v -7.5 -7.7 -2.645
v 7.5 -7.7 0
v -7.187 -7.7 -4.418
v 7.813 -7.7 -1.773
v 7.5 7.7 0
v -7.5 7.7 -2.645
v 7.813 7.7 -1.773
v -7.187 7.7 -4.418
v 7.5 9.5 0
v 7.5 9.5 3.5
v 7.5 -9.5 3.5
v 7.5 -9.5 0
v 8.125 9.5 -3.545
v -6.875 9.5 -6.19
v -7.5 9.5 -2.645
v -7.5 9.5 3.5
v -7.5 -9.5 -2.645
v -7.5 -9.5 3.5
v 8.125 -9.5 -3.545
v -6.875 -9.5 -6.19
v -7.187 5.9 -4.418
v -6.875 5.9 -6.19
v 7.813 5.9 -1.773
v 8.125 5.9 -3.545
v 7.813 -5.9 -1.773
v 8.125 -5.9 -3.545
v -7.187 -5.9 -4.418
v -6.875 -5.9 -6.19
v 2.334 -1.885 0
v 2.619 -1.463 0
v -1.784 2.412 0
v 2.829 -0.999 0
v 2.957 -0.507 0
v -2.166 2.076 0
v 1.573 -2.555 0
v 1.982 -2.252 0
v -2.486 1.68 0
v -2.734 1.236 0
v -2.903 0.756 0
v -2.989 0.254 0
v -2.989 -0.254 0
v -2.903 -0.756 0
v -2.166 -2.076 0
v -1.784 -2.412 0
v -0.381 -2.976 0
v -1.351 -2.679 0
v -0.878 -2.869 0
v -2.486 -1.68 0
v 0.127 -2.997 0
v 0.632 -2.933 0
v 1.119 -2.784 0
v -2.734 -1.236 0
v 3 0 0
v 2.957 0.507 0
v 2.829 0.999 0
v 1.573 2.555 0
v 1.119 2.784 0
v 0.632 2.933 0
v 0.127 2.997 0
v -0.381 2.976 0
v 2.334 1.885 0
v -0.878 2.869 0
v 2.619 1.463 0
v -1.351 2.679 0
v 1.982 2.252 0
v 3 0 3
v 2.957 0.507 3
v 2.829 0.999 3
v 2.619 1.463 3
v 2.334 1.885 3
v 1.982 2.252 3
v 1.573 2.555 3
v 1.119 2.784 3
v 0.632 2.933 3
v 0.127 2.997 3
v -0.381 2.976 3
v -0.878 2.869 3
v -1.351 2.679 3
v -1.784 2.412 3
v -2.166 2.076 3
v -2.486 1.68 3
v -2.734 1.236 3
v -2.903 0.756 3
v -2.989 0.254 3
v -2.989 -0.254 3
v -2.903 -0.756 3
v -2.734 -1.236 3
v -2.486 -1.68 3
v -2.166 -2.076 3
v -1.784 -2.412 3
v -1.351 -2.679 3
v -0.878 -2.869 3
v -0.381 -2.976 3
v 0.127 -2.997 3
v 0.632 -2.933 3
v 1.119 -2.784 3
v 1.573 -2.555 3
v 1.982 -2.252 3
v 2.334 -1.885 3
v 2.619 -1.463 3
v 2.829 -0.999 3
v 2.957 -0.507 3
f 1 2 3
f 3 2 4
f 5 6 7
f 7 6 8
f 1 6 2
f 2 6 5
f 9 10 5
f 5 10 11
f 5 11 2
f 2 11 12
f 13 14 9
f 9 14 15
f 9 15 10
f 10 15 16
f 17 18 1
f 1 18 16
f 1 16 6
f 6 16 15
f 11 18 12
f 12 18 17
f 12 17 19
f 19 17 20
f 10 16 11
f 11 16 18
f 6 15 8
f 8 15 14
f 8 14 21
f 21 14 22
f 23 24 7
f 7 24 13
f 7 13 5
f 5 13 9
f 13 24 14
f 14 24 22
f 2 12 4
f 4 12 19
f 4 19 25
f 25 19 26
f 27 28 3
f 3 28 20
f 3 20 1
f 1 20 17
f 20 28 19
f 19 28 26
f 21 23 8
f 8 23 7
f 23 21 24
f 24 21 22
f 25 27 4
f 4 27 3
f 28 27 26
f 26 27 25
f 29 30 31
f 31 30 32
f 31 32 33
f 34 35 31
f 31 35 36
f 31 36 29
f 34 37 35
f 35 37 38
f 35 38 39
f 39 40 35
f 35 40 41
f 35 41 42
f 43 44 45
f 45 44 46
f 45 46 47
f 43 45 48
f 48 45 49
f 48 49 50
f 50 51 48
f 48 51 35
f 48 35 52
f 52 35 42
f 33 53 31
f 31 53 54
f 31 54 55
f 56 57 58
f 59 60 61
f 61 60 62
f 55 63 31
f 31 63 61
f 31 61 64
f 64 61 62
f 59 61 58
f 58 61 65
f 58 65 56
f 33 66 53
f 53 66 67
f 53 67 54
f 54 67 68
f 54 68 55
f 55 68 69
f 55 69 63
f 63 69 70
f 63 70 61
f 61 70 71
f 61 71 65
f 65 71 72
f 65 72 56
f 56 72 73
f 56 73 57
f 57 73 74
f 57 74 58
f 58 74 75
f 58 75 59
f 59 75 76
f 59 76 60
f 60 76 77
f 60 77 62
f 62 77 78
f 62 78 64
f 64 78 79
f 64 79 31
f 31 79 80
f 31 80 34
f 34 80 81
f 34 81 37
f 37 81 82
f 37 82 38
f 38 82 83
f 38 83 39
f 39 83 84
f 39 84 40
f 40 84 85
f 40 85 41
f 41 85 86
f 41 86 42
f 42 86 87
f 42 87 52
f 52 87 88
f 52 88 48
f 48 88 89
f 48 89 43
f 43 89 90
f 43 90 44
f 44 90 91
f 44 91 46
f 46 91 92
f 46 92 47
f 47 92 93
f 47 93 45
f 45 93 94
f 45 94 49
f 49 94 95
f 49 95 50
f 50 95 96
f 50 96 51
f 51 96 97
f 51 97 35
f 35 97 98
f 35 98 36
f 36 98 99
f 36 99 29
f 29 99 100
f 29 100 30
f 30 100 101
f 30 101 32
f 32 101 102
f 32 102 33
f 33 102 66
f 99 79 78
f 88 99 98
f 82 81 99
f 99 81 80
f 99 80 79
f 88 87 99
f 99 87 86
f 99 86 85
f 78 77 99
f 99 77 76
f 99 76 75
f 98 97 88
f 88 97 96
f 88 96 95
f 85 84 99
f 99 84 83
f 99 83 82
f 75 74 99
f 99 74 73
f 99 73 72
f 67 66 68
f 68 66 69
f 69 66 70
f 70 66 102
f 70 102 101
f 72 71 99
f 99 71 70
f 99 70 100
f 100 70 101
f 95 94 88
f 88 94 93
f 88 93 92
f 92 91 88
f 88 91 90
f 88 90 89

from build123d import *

# Parameters (mm, degrees)
SKIZZE1_W                       = 15
SKIZZE1_H                       = 19
AUFSATZ_LINEAR_AUSTRAGEN1_DEPTH = 3
AUFSATZ_LINEAR_AUSTRAGEN2_DEPTH = 19
SKIZZE5_R                       = 3
SCHNITT_LINEAR_AUSTRAGEN1_DEPTH = 3
SKIZZE6_W                       = 15
SKIZZE6_H                       = 19
AUFSATZ_LINEAR_AUSTRAGEN3_DEPTH = 0.5
SKIZZE7_W                       = 15.231399179
SKIZZE7_H                       = 1.8
AUFSATZ_LINEAR_AUSTRAGEN4_DEPTH = 3.6
AUFSATZ_LINEAR_AUSTRAGEN5_DEPTH = 1.8
AUFSATZ_LINEAR_AUSTRAGEN6_DEPTH = 1.8


with BuildPart() as part:
    # Skizze1 → Aufsatz-Linear austragen1 (new body)
    with BuildSketch(Plane.XY):
        Rectangle(SKIZZE1_W, SKIZZE1_H)
    extrude(amount=AUFSATZ_LINEAR_AUSTRAGEN1_DEPTH)

    # Skizze3 → Aufsatz-Linear austragen2 (add)
    with BuildSketch(Plane(origin=(0, 9.5, 0), x_dir=(1, 0, 0), z_dir=(0, 1, 0))):
        Polygon((-7.5, 0), (-7.5, 2.644904711), (7.5, 0), align=None)
    extrude(amount=-AUFSATZ_LINEAR_AUSTRAGEN2_DEPTH)

    # Skizze5 → Schnitt-Linear austragen1 (cut)
    with BuildSketch(Plane.XY.offset(3)):
        Circle(SKIZZE5_R)
    extrude(amount=-SCHNITT_LINEAR_AUSTRAGEN1_DEPTH, mode=Mode.SUBTRACT)

    # Skizze6 → Aufsatz-Linear austragen3 (add)
    with BuildSketch(Plane.XY.offset(3)):
        Rectangle(SKIZZE6_W, SKIZZE6_H)
    extrude(amount=AUFSATZ_LINEAR_AUSTRAGEN3_DEPTH)

    # Skizze7 → Aufsatz-Linear austragen4 (add)
    with BuildSketch(Plane(origin=(0.226152672, 0, -1.282575537), x_dir=(-0.984807753, 0, -0.173648178), z_dir=(0.173648178, 0, -0.984807753))):
        with Locations((0.229641442, 8.6)):
            Rectangle(SKIZZE7_W, SKIZZE7_H)
        with Locations((0.229641442, -8.6)):
            Rectangle(SKIZZE7_W, SKIZZE7_H)
    extrude(amount=AUFSATZ_LINEAR_AUSTRAGEN4_DEPTH)

    # Skizze10 → Aufsatz-Linear austragen5 (add)
    with BuildSketch(Plane.XZ.offset(-7.7)):
        Polygon((8.12513344, -3.545307911), (7.81256672, -1.772653955), (-7.18743328, -4.417558666), (-6.87486656, -6.190212621), align=None)
    extrude(amount=AUFSATZ_LINEAR_AUSTRAGEN5_DEPTH)

    # Skizze9 → Aufsatz-Linear austragen6 (add)
    with BuildSketch(Plane(origin=(0, -7.7, 0), x_dir=(1, 0, 0), z_dir=(0, 1, 0))):
        Polygon((7.81256672, 1.772653955), (-7.18743328, 4.417558666), (-6.87486656, 6.190212621), (8.12513344, 3.545307911), align=None)
    extrude(amount=AUFSATZ_LINEAR_AUSTRAGEN6_DEPTH)


solid = part.part
